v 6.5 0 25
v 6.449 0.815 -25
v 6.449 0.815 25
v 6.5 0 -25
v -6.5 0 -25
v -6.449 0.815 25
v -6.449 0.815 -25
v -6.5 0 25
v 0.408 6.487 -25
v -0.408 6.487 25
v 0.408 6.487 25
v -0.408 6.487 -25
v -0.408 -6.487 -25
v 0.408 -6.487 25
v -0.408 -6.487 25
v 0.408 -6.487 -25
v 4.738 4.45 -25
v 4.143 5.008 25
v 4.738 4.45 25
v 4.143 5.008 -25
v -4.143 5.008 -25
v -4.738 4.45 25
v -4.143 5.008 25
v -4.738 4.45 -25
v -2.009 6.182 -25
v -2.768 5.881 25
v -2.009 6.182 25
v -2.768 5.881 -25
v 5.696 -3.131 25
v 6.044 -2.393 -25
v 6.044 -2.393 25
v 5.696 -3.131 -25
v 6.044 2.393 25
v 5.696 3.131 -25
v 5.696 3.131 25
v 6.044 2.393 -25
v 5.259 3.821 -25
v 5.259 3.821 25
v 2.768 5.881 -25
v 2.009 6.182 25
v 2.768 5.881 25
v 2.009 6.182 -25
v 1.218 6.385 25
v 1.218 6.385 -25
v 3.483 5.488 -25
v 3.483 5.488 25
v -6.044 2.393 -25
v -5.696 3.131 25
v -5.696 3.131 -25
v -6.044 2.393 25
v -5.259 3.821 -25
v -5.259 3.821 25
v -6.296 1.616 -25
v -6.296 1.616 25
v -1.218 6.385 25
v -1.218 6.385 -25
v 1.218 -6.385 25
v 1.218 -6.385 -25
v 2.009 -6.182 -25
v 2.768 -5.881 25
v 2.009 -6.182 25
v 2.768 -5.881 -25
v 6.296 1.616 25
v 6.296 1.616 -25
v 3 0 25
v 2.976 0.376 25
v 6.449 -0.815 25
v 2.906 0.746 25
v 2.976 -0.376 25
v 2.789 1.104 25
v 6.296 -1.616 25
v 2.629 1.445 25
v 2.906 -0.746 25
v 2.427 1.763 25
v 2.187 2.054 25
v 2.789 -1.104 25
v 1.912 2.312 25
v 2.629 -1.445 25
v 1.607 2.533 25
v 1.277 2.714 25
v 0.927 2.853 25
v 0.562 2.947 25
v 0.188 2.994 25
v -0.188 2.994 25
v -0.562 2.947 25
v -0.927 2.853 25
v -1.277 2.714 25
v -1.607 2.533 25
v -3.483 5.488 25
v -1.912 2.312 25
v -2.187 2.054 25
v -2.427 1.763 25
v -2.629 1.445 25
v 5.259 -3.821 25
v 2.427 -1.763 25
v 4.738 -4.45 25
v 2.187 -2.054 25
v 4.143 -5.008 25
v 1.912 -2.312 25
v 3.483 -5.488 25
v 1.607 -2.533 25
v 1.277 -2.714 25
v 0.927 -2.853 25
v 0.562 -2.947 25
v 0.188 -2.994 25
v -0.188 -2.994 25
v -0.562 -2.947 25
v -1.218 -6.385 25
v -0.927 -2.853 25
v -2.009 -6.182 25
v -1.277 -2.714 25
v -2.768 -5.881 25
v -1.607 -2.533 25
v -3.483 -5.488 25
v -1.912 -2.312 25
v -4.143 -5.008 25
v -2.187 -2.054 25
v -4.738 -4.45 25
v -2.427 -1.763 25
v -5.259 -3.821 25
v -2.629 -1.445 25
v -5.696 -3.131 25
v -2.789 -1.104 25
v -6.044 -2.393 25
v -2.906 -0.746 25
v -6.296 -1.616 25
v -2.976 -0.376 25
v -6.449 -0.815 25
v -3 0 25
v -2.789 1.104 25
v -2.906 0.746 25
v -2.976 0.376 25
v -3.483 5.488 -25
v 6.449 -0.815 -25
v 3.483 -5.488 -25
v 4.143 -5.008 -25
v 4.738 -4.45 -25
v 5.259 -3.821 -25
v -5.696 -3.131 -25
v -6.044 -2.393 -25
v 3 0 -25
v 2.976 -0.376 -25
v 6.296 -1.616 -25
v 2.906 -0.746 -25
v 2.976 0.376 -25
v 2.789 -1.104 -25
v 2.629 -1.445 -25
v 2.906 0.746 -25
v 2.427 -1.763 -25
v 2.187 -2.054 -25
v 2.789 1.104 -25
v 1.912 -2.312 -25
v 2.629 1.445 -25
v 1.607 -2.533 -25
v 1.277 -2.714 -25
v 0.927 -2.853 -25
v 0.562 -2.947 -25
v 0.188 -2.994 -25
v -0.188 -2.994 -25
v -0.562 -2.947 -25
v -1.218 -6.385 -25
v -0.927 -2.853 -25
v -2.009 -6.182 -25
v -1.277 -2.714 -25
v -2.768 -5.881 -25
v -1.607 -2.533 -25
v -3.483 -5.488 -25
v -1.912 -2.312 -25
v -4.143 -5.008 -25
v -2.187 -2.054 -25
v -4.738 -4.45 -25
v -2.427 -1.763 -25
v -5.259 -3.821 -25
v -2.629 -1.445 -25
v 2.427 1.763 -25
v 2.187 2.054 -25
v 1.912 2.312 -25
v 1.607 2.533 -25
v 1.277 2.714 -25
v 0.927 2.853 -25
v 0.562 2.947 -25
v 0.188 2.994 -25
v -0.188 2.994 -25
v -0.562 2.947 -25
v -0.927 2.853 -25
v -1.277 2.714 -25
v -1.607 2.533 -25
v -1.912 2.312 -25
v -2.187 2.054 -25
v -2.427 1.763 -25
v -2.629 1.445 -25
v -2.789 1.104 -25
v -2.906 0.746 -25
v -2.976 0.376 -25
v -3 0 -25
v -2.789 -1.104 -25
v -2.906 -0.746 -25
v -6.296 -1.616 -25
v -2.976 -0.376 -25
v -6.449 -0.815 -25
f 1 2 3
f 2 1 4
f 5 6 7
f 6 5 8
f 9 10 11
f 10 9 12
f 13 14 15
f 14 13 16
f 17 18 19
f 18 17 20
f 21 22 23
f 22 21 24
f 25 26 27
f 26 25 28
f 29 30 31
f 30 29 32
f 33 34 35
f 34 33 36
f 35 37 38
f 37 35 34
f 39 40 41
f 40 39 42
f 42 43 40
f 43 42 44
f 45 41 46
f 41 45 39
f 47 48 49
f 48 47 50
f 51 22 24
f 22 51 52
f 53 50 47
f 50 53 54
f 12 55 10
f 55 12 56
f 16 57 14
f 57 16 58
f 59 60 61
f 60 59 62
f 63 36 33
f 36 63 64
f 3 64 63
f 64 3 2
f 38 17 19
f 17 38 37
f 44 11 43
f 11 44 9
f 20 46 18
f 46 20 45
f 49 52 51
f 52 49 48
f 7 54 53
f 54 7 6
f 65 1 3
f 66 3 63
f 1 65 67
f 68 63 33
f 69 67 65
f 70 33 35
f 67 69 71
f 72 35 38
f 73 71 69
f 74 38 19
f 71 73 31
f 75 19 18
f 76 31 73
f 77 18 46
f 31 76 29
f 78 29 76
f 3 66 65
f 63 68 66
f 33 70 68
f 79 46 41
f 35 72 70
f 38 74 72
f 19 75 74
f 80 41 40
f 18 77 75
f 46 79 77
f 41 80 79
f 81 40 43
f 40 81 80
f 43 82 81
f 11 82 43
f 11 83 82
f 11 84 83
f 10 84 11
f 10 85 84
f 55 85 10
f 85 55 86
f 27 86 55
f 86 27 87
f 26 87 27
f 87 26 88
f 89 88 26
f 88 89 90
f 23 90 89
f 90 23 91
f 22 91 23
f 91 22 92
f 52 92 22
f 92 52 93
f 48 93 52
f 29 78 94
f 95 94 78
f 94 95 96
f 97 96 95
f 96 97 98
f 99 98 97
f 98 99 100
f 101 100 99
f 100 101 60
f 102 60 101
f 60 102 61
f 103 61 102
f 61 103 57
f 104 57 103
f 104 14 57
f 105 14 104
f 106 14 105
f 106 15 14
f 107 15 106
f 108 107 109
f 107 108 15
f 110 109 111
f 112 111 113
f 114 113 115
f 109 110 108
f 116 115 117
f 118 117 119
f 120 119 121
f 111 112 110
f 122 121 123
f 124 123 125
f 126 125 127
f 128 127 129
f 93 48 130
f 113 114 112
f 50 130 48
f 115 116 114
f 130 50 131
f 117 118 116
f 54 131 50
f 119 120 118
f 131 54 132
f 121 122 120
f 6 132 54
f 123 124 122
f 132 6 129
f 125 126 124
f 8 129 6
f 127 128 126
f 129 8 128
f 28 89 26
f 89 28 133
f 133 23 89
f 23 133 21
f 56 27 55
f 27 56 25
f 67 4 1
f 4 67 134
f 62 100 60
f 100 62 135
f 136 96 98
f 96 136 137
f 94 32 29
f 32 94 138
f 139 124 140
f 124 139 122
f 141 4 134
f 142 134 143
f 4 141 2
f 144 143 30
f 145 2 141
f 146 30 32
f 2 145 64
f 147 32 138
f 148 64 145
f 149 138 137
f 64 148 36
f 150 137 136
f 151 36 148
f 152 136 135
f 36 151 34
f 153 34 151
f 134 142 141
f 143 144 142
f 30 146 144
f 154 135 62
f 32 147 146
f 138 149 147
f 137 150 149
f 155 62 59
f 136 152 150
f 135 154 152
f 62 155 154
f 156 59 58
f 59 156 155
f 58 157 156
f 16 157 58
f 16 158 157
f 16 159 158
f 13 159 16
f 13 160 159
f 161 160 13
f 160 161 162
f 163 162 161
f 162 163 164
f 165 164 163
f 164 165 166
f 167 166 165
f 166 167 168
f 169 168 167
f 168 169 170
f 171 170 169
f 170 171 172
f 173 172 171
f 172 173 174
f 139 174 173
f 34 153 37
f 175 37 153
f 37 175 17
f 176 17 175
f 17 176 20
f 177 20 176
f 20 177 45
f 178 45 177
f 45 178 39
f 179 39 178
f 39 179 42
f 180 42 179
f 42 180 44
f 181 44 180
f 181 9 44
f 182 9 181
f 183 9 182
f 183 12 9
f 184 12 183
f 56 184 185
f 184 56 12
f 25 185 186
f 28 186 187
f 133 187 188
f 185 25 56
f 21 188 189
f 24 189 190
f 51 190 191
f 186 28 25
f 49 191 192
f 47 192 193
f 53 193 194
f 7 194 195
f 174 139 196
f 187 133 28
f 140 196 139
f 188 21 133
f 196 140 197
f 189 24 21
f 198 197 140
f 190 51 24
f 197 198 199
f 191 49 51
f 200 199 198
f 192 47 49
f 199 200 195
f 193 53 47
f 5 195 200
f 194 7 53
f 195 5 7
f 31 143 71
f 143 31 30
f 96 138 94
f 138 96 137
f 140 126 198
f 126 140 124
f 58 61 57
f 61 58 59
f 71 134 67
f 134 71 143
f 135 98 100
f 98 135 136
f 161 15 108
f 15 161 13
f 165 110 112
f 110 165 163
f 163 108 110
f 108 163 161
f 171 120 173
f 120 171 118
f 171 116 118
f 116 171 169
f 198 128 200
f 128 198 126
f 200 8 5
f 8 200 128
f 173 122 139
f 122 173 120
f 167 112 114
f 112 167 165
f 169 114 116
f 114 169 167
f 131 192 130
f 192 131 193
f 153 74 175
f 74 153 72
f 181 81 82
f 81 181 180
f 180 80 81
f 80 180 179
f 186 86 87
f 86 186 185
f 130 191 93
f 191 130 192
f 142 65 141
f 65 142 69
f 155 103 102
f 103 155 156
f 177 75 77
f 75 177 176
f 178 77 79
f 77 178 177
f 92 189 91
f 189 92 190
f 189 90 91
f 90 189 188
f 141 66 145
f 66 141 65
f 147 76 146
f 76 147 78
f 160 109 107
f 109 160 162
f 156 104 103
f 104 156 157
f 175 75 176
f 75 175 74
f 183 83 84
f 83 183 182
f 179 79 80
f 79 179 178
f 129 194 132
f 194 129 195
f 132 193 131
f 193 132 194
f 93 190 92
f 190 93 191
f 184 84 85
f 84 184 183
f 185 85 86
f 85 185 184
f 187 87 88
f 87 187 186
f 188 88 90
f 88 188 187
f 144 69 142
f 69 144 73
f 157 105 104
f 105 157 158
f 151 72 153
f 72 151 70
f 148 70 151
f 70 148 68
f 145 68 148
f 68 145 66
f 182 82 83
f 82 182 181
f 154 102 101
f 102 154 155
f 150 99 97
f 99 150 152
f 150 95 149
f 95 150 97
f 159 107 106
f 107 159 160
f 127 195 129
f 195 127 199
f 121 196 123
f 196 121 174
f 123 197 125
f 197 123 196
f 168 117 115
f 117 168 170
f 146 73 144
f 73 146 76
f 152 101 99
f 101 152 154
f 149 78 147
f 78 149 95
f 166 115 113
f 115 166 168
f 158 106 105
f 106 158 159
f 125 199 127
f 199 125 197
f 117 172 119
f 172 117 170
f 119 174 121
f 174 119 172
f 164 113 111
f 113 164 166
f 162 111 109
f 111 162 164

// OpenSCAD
$fn = 50;


difference() {
	union() {
		translate(v = [0, 0, -25.0000000000]) {
			cylinder(h = 50, r = 6.5000000000);
		}
	}
	union() {
		translate(v = [0, 0, -100.0000000000]) {
			cylinder(h = 200, r = 3);
		}
	}
}
